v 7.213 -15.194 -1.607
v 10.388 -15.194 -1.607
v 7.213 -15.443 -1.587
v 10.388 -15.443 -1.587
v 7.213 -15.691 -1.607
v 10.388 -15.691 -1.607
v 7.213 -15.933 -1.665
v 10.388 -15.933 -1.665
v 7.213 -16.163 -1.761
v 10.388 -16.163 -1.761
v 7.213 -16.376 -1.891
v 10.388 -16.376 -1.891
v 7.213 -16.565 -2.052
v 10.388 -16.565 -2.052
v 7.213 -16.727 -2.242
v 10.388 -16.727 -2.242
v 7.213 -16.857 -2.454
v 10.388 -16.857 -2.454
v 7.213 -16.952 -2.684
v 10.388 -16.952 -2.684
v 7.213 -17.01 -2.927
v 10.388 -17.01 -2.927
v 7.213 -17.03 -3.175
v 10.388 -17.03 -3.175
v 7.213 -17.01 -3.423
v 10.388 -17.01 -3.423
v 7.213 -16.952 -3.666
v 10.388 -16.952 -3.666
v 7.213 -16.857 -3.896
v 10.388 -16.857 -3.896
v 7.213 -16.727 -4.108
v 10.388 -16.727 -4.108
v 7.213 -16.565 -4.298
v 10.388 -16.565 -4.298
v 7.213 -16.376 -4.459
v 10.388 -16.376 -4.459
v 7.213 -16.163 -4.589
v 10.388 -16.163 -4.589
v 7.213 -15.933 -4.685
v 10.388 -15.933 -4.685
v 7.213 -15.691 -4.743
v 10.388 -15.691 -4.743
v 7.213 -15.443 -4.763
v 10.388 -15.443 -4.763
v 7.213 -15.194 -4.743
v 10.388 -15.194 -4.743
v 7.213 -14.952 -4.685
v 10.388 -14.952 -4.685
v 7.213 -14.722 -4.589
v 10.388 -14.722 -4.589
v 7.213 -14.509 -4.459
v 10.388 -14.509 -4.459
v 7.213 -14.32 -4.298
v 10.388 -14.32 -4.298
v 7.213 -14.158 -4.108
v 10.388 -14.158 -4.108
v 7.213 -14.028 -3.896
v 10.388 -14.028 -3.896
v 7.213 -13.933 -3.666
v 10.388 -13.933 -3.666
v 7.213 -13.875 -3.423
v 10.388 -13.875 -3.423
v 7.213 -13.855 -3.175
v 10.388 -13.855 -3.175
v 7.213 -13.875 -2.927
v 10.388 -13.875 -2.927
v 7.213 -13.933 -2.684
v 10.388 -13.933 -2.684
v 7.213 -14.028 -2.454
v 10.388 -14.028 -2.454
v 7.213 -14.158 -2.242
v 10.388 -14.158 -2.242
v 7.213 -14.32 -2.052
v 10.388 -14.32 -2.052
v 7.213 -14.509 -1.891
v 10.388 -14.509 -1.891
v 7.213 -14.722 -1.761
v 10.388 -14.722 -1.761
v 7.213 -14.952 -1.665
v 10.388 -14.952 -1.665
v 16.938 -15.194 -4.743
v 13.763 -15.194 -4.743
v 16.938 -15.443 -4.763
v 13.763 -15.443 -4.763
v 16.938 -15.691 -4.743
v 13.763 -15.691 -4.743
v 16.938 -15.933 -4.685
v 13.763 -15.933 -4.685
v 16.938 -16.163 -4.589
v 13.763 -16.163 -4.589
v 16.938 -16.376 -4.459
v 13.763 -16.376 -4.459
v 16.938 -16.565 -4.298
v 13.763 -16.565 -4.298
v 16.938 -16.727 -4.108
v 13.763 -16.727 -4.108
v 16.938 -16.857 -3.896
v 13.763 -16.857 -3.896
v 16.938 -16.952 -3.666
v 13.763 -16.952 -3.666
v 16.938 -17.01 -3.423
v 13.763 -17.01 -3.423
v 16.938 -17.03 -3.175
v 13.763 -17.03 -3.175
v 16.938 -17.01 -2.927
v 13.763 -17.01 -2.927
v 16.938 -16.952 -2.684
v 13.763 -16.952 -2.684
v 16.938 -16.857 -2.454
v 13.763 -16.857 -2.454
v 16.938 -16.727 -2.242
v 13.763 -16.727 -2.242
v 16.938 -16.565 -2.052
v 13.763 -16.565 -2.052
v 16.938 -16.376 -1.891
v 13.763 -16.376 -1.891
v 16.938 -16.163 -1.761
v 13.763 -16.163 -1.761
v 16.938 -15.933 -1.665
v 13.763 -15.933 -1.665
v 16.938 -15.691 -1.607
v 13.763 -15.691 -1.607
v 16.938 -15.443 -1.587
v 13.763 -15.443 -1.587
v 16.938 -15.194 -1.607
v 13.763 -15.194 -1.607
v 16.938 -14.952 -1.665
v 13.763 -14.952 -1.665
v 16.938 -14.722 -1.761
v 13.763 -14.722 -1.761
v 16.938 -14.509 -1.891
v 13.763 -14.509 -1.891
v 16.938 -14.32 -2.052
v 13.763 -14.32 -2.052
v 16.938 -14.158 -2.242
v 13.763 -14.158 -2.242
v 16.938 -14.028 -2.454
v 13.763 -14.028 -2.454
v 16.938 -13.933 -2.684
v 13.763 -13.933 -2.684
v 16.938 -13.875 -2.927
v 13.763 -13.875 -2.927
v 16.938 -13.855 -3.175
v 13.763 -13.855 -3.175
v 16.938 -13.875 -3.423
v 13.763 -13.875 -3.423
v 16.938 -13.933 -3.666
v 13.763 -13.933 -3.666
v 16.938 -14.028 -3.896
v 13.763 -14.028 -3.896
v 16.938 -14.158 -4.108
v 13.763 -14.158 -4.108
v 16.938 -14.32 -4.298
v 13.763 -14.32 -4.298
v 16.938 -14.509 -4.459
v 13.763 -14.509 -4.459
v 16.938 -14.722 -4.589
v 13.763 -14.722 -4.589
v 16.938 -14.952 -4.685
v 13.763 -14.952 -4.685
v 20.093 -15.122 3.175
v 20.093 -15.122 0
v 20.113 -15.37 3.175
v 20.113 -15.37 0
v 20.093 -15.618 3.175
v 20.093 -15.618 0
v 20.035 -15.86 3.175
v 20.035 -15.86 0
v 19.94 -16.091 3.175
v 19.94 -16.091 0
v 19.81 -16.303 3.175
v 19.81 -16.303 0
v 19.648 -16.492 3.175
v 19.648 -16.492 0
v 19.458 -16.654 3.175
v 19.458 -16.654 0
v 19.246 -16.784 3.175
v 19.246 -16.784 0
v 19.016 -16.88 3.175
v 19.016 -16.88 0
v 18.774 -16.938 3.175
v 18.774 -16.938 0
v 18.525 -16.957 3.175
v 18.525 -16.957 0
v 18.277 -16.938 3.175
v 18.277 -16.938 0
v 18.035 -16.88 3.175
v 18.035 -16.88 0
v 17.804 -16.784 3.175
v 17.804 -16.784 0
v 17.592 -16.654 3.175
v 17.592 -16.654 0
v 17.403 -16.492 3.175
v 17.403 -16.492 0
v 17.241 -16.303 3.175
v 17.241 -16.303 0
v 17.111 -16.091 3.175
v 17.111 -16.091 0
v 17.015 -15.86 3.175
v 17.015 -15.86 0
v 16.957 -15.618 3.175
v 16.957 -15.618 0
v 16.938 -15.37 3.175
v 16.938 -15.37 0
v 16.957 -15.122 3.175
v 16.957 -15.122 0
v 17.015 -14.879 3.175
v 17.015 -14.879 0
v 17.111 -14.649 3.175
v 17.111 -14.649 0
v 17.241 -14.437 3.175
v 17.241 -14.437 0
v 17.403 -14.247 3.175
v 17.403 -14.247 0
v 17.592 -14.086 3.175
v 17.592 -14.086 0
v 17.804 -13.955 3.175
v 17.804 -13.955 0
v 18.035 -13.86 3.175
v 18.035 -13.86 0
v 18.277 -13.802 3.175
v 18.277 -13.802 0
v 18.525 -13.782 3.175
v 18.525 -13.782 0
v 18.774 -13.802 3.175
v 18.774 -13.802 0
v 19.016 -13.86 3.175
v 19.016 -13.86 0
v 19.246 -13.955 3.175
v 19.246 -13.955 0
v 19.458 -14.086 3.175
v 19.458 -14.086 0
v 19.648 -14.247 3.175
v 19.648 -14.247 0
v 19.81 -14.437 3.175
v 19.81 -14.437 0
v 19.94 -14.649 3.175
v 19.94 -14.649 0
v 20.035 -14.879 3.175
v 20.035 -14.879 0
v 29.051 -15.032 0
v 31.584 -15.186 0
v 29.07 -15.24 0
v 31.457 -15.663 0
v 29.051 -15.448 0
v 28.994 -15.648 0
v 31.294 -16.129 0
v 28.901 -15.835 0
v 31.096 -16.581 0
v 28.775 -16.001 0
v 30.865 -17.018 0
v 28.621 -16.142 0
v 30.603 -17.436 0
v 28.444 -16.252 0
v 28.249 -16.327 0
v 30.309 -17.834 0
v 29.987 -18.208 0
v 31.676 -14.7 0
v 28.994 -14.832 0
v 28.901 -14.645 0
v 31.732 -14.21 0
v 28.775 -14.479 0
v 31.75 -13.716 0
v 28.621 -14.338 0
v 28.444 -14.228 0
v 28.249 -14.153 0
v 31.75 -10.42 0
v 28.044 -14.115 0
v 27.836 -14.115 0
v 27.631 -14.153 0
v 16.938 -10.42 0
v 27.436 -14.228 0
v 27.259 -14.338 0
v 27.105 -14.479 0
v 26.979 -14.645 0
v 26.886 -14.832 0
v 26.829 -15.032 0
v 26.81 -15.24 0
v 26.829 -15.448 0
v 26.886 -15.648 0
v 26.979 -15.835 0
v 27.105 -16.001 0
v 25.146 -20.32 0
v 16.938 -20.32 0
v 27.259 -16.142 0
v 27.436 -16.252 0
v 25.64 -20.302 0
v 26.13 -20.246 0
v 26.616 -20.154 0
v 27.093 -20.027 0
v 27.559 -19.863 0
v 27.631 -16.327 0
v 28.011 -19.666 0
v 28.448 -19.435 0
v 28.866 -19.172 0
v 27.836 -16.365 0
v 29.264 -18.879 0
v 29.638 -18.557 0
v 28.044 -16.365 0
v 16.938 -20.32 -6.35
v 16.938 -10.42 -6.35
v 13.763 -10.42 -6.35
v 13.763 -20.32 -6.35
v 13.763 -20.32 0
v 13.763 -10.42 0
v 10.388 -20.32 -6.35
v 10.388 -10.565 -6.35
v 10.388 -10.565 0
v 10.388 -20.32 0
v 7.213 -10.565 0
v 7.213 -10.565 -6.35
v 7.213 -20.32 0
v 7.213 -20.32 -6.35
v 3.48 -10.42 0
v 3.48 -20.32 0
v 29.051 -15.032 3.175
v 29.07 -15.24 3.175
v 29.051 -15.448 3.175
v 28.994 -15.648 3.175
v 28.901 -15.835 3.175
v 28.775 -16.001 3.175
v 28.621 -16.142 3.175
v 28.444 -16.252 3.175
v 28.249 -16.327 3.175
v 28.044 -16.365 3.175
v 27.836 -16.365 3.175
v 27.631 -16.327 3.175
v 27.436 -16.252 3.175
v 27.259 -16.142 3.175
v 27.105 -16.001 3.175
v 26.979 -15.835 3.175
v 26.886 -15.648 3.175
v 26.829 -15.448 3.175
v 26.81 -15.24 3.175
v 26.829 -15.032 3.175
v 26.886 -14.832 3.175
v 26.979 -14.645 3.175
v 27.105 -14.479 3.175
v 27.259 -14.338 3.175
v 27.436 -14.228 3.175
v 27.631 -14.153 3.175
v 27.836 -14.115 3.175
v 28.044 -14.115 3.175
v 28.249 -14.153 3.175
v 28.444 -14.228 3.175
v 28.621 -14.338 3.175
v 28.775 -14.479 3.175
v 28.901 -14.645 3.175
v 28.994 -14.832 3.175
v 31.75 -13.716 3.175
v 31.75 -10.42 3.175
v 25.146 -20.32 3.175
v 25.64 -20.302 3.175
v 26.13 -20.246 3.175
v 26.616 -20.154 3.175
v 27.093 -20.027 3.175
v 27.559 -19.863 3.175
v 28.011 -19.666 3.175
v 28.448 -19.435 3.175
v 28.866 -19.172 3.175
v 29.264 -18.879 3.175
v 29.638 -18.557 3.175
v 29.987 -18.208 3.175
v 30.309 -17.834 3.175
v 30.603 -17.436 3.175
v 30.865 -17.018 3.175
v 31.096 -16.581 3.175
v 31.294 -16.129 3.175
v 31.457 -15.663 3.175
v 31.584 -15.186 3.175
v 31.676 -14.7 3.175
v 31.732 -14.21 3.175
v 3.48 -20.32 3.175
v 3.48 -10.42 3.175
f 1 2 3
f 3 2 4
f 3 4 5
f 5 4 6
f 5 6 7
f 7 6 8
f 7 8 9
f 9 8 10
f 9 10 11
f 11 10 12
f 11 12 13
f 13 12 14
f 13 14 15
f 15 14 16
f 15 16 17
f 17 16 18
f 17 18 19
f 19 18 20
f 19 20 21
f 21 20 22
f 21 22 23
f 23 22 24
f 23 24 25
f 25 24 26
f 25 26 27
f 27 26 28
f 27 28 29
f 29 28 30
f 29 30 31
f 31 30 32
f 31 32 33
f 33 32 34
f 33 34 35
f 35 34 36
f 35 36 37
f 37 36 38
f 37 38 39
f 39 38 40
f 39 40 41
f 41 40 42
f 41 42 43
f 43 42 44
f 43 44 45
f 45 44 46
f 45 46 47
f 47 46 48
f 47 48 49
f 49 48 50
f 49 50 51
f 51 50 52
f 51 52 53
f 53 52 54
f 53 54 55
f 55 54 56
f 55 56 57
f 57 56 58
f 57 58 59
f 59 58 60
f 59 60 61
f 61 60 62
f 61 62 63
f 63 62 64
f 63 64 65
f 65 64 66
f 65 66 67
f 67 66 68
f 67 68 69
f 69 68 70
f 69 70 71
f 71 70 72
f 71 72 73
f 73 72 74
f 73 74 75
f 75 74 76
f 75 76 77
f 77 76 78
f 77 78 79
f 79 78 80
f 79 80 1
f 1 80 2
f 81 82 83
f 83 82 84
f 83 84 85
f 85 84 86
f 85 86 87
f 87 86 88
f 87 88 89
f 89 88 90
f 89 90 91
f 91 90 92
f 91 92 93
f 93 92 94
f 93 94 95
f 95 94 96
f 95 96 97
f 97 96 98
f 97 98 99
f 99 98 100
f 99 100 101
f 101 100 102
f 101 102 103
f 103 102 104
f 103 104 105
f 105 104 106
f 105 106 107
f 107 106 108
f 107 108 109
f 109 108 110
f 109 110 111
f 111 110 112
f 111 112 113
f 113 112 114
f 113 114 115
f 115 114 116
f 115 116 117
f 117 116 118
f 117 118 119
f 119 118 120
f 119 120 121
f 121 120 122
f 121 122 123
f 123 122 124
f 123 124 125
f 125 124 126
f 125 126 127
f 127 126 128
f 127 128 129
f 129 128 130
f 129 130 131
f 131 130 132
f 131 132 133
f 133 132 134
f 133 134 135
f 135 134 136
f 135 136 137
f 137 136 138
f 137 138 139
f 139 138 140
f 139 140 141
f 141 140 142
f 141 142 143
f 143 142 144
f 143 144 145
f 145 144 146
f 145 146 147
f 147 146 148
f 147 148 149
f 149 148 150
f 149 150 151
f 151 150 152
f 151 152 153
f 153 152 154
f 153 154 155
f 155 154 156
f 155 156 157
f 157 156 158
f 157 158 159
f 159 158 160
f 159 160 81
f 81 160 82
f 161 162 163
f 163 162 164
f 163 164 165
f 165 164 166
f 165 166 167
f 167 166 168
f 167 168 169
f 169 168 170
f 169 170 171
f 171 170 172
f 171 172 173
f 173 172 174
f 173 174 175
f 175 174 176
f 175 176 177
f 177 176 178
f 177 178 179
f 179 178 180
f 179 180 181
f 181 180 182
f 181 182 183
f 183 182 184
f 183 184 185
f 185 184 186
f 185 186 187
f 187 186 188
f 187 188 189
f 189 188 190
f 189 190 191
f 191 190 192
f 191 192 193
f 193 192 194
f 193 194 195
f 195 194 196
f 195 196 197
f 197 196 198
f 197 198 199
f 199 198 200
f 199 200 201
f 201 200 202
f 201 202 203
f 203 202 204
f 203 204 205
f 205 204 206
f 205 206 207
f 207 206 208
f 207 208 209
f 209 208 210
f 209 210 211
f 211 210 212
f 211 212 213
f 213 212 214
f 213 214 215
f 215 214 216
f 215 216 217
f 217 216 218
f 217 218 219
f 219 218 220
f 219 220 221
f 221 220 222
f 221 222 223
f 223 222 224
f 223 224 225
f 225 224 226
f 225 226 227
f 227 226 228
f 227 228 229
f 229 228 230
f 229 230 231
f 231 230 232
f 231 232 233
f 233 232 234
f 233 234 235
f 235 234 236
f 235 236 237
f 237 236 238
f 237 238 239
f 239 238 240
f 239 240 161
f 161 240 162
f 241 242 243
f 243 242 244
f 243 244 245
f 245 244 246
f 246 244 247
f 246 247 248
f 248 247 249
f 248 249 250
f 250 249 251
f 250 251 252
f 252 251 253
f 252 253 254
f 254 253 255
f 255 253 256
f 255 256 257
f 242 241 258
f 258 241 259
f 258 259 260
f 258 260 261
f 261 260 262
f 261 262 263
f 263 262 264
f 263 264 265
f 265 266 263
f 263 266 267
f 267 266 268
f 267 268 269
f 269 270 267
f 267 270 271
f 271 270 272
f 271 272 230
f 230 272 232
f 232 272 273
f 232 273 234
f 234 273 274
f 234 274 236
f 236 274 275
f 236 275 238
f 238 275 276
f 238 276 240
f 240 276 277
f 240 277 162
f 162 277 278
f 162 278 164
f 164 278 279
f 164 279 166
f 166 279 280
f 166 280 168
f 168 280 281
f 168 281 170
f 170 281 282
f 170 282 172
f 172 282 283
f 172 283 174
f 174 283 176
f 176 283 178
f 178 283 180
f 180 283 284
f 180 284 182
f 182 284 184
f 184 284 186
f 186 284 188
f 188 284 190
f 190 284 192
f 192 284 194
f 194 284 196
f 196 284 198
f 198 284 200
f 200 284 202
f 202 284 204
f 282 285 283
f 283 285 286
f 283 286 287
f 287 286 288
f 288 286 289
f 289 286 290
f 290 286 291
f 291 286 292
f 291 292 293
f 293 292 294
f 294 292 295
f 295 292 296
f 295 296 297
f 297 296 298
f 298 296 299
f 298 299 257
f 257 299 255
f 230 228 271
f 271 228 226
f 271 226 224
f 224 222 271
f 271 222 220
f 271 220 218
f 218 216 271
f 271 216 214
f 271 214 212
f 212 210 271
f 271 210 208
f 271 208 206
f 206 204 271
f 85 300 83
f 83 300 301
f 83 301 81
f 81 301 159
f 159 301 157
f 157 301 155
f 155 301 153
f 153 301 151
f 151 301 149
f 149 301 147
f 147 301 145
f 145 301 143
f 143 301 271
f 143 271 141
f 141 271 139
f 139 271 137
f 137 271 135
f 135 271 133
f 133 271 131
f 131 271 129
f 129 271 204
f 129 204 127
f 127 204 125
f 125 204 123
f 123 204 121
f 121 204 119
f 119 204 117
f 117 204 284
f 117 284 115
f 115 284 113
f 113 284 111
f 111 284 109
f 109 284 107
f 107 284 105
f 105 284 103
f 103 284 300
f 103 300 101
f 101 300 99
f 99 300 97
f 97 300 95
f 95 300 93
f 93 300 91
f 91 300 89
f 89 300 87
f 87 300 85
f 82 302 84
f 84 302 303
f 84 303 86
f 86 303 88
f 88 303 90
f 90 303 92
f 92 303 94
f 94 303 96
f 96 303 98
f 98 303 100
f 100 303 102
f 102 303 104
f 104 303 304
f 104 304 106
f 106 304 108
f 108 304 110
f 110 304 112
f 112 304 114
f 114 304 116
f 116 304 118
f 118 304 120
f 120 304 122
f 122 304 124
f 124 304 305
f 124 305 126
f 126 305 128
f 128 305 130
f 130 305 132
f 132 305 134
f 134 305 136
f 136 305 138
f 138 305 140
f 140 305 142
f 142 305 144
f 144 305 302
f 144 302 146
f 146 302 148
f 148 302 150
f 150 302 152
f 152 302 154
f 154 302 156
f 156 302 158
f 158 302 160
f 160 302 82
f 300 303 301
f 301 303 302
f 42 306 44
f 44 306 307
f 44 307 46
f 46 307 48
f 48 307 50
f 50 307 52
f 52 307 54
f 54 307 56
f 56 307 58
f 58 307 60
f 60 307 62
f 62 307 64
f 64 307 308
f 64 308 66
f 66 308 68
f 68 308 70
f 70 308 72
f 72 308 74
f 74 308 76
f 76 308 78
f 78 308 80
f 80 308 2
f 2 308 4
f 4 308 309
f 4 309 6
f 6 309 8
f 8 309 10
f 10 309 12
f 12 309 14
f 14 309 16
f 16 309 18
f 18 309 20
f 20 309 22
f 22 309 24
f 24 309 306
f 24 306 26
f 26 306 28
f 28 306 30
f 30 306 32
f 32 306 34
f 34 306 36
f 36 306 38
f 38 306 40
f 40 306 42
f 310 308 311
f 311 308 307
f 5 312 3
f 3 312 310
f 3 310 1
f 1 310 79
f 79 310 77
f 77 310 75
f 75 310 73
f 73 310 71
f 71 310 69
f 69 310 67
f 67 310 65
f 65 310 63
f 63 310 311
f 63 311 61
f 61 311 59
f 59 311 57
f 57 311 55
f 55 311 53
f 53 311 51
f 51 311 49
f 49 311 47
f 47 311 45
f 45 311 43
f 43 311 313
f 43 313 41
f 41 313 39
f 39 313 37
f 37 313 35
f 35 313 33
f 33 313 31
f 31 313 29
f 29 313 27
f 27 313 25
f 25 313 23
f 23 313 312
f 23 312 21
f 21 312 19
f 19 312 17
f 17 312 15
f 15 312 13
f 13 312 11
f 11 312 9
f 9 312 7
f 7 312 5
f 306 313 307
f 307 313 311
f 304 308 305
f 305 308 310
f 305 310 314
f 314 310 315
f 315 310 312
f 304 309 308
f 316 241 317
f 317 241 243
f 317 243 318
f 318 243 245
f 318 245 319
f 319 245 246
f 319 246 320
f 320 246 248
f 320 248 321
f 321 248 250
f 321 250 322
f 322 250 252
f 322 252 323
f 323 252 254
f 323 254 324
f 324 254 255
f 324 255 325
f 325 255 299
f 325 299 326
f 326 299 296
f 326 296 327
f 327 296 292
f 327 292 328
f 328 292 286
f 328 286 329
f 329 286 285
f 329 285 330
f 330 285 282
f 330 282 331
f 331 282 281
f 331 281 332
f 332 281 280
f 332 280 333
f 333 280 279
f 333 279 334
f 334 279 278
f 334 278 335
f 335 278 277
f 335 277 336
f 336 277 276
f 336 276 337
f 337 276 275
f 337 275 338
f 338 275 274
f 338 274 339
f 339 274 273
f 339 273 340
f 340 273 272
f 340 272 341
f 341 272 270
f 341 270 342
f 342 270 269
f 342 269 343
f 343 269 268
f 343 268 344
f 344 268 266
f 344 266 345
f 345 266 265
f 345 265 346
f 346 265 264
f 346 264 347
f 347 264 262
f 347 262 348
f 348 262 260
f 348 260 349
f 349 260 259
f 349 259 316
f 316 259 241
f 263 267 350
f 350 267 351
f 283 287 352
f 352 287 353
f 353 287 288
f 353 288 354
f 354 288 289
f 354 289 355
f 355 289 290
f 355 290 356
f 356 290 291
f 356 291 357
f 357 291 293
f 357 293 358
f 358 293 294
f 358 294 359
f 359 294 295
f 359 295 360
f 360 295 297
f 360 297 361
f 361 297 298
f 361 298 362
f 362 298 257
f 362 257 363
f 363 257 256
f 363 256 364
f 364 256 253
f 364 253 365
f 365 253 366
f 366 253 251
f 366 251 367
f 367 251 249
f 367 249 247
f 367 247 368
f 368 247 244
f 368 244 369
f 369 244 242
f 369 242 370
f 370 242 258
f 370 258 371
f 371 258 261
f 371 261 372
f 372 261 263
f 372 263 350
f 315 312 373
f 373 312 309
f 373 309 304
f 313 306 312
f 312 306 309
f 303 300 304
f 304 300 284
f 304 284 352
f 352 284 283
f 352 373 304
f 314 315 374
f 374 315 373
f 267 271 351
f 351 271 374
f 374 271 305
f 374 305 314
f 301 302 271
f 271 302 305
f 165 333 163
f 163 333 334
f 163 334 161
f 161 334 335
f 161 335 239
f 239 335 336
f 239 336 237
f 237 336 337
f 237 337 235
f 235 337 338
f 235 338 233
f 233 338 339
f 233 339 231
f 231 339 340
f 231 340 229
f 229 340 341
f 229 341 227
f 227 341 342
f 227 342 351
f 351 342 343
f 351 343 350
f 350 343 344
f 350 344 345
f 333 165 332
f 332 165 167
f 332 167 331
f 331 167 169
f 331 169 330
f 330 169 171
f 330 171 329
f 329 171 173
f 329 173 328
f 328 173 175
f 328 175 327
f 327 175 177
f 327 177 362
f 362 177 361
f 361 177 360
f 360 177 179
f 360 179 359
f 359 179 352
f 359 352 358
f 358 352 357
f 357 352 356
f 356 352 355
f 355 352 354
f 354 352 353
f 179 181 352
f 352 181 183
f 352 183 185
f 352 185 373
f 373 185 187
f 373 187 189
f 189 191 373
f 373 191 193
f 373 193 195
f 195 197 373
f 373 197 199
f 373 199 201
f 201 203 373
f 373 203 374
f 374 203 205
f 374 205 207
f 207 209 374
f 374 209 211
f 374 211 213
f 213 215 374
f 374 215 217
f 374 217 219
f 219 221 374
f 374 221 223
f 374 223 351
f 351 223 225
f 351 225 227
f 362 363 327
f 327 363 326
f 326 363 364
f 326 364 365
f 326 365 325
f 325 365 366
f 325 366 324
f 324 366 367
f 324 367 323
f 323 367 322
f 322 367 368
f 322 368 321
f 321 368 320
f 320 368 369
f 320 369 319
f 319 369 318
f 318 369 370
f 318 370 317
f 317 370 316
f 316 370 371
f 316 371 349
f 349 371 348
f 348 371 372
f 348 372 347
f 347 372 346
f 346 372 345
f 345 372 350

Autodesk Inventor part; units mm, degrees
ref_plane "YZ Plane" through (0, 0, 0) normal (1, 0, 0) x (0, 1, 0)
ref_plane "XZ Plane" through (0, 0, 0) normal (0, 1, 0) x (-1, 0, 0)
ref_plane "XY Plane" through (0, 0, 0) normal (0, 0, 1) x (1, 0, 0)
ref_plane "Work Plane1" through (0, 0, 0) normal (0, 0, 1) x (1, 0, 0)
sketch "Sketch1" plane through (0, 0, 0) normal (0, 0, 1) x (1, 0, 0)
  line L0 (31.75, -13.716) -> (31.75, -6.096) projected
  arc A0 (25.146, -20.32) -> (31.75, -13.716) centre (25.146, -13.716) ccw projected
  line L1 (24.13, -20.32) -> (25.146, -20.32) projected
  circle A1 centre (27.94, -15.24) radius 1.1303 projected
  line L2 (31.75, -6.096) -> (31.75, -10.4198)
  line L3 (31.75, -10.4198) -> (24.13, -10.4198)
  line L4 (24.13, -10.4198) -> (24.13, -20.32)
  point P0 (0, 0)
extrude "Extrusion1" add sketch "Sketch1" along normal blind 3.175
move faces "Move1" translate (-20.6502, 0, 0) faces at (24.13, -13.7199, 1.0583)
sketch "Sketch2" plane through (0, 0, 0) normal (0, 0, -1) x (-1, 0, 0)
  line L0 (-13.6627, -7.7169) -> (-13.6627, -20.1208) projected
  line L1 (-10.4877, -7.7169) -> (-10.4877, -20.1208)
  line L2 (-3.4798, -20.32) -> (-25.146, -20.32) projected
  line L3 (-10.3877, -20.32) -> (-7.2127, -20.32)
  line L4 (-7.2127, -20.32) -> (-7.2127, -10.5651)
  line L5 (-7.2127, -10.5651) -> (-10.3877, -10.5651)
  line L6 (-10.3877, -10.5651) -> (-10.3877, -20.32)
  line L7 (-31.75, -10.4198) -> (-3.4798, -10.4198) projected
  line L8 (-13.7627, -20.32) -> (-16.9377, -20.32)
  line L9 (-16.9377, -20.32) -> (-16.9377, -10.4198)
  line L10 (-16.9377, -10.4198) -> (-13.7627, -10.4198)
  line L11 (-13.7627, -10.4198) -> (-13.7627, -20.32)
  point P0 (0, 0)
  dimension "d5" = 0.1
  dimension "d6" = 0.1
  dimension "d7" = 3.175
  dimension "d8" = 3.175
extrude "Extrusion2" add sketch "Sketch2" along normal blind 6.35
sketch "Sketch3" plane through (6.6139, -20.32, 0) normal (-1, 0, 0) x (0, 0, 1)
  line L0 (0, 9.7549) -> (0, 0) construction
  line L1 (0, 9.7549) -> (-6.35, 9.7549) construction
  line L2 (-6.35, 0) -> (-6.35, 9.7549) construction
  line L3 (0, 0) -> (-6.35, 0) construction
  line L4 (0, 0) -> (-6.35, 9.7549) construction
  circle A0 centre (-3.175, 4.8775) radius 1.5875
  point P0 (0, 20.32)
  dimension "d11" = 3.175
extrude "Extrusion3" [suppressed]
sketch "Sketch4" plane through (0, 0, 0) normal (0, 0, -1) x (-1, 0, 0)
  line L0 (-16.9377, -20.32) -> (-16.9377, -10.4198) construction
  line L1 (-16.9377, -15.3699) -> (-22.7751, -15.3699) construction
  circle A0 centre (-18.5252, -15.3699) radius 1.5875
  point P0 (0, 0)
  dimension "d17" = 3.175
extrude "Extrusion4" cut sketch "Sketch4" against normal blind 12.7
sketch "Sketch5" plane through (7.2127, -20.32, 0) normal (-1, 0, 0) x (0, 0, 1)
  line L0 (0, 9.7549) -> (0, 0) projected
  line L1 (-6.35, 0) -> (-6.35, 9.7549) projected
  line L2 (0, 9.7549) -> (-6.35, 0) construction
  circle A0 centre (-3.175, 4.8775) radius 1.5875
  point P0 (0, 20.32)
  dimension "d20" = 3.175
extrude "Extrusion5" cut sketch "Sketch5" against normal blind 17.4625
properties part number "adapter_1"
